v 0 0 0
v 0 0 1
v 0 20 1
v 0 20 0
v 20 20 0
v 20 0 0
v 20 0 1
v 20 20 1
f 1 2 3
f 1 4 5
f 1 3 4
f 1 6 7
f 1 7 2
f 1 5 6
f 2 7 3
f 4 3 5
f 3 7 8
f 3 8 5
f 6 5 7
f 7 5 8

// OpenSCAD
/* Warning, this is a very basic generator with a lot of approximation 
input data : [TQFP, Z8X, 20x20x1.0mm, 144, , A, C04-17083A]
generated by com.zoubworld.electronics.cad.model3d.Basic
Date : Sun Feb 15 10:50:49 CET 2026
*/

//body
color("black")
translate([0,0,0])
cube([20.0,20.0,1.0], center=false);
